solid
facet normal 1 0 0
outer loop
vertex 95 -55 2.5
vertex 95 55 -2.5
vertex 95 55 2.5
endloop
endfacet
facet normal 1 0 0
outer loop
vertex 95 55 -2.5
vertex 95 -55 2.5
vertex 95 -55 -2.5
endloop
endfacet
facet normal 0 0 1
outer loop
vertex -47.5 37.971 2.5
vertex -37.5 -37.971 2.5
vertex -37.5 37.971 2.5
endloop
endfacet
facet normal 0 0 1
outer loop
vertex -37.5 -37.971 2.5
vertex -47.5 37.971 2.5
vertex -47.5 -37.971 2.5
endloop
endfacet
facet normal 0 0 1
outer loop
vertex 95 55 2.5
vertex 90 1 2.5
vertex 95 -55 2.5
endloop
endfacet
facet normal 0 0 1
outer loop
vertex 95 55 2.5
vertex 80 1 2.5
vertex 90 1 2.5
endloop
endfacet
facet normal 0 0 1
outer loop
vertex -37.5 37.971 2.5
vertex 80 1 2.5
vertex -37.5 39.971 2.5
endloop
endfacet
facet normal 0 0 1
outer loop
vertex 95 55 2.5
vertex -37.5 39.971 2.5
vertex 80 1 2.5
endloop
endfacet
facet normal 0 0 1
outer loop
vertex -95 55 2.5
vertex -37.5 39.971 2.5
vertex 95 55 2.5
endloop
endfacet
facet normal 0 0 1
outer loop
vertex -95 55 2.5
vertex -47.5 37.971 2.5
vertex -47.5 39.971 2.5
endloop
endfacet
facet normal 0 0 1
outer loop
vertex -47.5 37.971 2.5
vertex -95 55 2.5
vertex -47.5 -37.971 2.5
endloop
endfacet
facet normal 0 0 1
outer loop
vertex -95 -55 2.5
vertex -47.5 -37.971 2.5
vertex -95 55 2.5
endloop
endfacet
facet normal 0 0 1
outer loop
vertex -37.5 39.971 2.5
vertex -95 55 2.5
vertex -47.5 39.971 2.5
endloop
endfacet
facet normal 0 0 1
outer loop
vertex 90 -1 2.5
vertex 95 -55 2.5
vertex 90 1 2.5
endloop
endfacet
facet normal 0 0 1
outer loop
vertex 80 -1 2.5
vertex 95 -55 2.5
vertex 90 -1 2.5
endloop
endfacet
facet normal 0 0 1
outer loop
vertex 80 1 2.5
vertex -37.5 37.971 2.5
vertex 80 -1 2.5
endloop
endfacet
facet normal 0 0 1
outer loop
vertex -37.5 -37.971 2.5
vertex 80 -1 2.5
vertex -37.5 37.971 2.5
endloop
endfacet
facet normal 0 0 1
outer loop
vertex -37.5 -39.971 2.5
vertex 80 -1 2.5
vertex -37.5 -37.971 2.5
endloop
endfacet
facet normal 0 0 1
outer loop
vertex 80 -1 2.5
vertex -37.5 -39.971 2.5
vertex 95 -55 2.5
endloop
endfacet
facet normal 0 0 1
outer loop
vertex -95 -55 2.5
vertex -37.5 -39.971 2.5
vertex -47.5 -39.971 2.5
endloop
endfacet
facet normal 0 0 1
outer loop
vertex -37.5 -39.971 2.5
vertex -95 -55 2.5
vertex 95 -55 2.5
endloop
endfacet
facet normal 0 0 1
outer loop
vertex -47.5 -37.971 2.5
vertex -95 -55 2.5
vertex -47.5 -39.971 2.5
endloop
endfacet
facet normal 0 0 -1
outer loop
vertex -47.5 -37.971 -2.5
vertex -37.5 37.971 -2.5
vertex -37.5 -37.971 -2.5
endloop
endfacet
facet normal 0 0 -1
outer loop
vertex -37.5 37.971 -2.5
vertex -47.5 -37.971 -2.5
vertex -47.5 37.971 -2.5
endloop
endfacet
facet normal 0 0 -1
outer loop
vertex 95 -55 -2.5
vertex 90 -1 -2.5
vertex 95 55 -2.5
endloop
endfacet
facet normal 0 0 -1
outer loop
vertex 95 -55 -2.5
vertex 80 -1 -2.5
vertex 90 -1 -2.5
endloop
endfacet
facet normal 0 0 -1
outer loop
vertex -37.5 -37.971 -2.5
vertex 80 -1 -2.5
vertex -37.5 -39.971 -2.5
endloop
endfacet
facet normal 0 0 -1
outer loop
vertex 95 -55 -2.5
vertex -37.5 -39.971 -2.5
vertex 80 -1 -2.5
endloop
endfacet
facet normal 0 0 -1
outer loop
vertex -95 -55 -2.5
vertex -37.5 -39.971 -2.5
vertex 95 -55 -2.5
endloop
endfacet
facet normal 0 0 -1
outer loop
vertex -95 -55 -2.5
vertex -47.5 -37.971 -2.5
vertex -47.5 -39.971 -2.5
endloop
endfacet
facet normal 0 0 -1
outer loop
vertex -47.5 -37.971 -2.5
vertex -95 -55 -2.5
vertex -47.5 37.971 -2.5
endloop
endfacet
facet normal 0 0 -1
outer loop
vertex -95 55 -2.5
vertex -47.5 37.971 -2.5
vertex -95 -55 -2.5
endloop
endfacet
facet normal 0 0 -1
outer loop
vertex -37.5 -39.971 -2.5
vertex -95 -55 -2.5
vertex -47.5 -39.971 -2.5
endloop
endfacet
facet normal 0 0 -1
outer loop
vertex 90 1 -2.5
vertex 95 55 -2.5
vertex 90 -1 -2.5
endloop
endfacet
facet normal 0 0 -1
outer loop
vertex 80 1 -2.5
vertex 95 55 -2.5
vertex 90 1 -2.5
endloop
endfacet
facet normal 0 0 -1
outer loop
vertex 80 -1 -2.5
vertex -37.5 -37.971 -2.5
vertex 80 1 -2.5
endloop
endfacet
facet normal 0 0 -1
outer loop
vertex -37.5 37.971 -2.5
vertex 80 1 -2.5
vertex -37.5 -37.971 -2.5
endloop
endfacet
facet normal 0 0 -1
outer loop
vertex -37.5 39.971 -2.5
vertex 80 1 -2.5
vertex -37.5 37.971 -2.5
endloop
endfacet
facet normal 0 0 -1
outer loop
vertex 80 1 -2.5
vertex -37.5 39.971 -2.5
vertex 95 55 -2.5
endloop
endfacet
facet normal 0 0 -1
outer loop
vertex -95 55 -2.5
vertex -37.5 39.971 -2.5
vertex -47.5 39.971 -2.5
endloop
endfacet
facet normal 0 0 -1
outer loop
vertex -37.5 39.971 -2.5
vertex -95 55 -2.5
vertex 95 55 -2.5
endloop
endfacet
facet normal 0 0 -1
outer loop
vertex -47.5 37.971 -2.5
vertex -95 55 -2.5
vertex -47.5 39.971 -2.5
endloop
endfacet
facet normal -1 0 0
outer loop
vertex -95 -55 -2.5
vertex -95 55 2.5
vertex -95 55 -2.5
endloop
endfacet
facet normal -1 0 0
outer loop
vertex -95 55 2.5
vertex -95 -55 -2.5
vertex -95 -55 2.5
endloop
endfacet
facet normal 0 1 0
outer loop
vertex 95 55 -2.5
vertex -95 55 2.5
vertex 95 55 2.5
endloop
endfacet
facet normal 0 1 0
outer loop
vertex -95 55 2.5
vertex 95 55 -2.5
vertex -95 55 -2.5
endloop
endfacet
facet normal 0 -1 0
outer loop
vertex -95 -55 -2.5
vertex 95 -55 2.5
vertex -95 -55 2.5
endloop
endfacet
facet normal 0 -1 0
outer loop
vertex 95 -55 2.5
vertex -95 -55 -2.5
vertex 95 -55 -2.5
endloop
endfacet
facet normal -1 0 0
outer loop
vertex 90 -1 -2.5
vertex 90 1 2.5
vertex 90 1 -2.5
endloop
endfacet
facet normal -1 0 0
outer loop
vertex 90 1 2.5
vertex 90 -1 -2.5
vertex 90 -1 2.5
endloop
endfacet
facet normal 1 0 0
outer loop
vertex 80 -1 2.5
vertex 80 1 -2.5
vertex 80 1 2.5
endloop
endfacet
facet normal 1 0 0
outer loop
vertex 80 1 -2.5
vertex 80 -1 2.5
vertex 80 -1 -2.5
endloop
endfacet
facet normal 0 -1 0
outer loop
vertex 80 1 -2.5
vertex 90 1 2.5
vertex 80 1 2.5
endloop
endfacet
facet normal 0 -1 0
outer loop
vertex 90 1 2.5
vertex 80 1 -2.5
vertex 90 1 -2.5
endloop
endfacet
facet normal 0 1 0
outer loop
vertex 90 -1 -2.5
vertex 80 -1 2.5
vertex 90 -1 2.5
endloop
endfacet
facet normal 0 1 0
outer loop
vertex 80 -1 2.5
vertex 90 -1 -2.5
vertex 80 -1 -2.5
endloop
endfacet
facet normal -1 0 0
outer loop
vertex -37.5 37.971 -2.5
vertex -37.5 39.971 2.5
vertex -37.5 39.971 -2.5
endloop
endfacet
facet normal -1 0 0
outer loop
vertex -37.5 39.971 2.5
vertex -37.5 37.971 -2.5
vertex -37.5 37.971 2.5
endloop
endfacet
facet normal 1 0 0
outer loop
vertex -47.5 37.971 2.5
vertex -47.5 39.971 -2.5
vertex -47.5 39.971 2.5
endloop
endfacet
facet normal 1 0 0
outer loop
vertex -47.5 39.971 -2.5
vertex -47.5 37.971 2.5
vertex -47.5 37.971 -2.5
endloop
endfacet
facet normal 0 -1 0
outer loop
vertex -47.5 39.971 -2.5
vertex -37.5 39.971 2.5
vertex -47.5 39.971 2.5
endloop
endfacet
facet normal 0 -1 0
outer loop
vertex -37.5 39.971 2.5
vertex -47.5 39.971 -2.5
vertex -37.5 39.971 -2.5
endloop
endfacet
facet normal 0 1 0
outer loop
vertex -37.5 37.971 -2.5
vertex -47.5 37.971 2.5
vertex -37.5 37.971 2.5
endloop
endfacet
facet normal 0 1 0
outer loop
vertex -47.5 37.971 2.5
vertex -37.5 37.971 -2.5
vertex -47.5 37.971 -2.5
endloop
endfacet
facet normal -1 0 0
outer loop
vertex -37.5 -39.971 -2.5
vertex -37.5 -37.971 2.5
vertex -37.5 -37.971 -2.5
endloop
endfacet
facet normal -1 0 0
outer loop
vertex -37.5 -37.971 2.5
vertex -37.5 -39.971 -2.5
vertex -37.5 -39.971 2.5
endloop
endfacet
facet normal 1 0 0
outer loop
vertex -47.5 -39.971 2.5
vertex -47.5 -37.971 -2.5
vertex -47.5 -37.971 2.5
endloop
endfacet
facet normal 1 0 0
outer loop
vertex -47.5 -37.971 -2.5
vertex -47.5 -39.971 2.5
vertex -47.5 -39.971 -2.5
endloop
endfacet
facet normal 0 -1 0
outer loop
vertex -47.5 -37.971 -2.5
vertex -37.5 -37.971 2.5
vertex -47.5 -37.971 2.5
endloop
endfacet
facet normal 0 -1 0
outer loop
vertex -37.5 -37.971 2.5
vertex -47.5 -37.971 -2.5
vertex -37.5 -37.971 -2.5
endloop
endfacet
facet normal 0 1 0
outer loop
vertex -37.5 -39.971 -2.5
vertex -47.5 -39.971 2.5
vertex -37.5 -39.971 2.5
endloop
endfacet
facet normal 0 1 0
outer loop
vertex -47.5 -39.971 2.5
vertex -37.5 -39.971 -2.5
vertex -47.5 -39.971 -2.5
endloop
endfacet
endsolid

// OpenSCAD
// ========================================
// a 190 x 110 x 5 mm plate with three 10 x 2 mm slots
// NeuroCAD canonical IR; dimensions are millimetres
// ========================================
$fn = 48;

difference() {
  cube(size=[190, 110, 5], center=true);
  translate([85, 0, 0]) {
    cube(size=[10, 2, 7], center=true);
  }
  translate([-42.5, 38.9711431702997, 0]) {
    cube(size=[10, 2, 7], center=true);
  }
  translate([-42.5, -38.9711431702997, 0]) {
    cube(size=[10, 2, 7], center=true);
  }
}
